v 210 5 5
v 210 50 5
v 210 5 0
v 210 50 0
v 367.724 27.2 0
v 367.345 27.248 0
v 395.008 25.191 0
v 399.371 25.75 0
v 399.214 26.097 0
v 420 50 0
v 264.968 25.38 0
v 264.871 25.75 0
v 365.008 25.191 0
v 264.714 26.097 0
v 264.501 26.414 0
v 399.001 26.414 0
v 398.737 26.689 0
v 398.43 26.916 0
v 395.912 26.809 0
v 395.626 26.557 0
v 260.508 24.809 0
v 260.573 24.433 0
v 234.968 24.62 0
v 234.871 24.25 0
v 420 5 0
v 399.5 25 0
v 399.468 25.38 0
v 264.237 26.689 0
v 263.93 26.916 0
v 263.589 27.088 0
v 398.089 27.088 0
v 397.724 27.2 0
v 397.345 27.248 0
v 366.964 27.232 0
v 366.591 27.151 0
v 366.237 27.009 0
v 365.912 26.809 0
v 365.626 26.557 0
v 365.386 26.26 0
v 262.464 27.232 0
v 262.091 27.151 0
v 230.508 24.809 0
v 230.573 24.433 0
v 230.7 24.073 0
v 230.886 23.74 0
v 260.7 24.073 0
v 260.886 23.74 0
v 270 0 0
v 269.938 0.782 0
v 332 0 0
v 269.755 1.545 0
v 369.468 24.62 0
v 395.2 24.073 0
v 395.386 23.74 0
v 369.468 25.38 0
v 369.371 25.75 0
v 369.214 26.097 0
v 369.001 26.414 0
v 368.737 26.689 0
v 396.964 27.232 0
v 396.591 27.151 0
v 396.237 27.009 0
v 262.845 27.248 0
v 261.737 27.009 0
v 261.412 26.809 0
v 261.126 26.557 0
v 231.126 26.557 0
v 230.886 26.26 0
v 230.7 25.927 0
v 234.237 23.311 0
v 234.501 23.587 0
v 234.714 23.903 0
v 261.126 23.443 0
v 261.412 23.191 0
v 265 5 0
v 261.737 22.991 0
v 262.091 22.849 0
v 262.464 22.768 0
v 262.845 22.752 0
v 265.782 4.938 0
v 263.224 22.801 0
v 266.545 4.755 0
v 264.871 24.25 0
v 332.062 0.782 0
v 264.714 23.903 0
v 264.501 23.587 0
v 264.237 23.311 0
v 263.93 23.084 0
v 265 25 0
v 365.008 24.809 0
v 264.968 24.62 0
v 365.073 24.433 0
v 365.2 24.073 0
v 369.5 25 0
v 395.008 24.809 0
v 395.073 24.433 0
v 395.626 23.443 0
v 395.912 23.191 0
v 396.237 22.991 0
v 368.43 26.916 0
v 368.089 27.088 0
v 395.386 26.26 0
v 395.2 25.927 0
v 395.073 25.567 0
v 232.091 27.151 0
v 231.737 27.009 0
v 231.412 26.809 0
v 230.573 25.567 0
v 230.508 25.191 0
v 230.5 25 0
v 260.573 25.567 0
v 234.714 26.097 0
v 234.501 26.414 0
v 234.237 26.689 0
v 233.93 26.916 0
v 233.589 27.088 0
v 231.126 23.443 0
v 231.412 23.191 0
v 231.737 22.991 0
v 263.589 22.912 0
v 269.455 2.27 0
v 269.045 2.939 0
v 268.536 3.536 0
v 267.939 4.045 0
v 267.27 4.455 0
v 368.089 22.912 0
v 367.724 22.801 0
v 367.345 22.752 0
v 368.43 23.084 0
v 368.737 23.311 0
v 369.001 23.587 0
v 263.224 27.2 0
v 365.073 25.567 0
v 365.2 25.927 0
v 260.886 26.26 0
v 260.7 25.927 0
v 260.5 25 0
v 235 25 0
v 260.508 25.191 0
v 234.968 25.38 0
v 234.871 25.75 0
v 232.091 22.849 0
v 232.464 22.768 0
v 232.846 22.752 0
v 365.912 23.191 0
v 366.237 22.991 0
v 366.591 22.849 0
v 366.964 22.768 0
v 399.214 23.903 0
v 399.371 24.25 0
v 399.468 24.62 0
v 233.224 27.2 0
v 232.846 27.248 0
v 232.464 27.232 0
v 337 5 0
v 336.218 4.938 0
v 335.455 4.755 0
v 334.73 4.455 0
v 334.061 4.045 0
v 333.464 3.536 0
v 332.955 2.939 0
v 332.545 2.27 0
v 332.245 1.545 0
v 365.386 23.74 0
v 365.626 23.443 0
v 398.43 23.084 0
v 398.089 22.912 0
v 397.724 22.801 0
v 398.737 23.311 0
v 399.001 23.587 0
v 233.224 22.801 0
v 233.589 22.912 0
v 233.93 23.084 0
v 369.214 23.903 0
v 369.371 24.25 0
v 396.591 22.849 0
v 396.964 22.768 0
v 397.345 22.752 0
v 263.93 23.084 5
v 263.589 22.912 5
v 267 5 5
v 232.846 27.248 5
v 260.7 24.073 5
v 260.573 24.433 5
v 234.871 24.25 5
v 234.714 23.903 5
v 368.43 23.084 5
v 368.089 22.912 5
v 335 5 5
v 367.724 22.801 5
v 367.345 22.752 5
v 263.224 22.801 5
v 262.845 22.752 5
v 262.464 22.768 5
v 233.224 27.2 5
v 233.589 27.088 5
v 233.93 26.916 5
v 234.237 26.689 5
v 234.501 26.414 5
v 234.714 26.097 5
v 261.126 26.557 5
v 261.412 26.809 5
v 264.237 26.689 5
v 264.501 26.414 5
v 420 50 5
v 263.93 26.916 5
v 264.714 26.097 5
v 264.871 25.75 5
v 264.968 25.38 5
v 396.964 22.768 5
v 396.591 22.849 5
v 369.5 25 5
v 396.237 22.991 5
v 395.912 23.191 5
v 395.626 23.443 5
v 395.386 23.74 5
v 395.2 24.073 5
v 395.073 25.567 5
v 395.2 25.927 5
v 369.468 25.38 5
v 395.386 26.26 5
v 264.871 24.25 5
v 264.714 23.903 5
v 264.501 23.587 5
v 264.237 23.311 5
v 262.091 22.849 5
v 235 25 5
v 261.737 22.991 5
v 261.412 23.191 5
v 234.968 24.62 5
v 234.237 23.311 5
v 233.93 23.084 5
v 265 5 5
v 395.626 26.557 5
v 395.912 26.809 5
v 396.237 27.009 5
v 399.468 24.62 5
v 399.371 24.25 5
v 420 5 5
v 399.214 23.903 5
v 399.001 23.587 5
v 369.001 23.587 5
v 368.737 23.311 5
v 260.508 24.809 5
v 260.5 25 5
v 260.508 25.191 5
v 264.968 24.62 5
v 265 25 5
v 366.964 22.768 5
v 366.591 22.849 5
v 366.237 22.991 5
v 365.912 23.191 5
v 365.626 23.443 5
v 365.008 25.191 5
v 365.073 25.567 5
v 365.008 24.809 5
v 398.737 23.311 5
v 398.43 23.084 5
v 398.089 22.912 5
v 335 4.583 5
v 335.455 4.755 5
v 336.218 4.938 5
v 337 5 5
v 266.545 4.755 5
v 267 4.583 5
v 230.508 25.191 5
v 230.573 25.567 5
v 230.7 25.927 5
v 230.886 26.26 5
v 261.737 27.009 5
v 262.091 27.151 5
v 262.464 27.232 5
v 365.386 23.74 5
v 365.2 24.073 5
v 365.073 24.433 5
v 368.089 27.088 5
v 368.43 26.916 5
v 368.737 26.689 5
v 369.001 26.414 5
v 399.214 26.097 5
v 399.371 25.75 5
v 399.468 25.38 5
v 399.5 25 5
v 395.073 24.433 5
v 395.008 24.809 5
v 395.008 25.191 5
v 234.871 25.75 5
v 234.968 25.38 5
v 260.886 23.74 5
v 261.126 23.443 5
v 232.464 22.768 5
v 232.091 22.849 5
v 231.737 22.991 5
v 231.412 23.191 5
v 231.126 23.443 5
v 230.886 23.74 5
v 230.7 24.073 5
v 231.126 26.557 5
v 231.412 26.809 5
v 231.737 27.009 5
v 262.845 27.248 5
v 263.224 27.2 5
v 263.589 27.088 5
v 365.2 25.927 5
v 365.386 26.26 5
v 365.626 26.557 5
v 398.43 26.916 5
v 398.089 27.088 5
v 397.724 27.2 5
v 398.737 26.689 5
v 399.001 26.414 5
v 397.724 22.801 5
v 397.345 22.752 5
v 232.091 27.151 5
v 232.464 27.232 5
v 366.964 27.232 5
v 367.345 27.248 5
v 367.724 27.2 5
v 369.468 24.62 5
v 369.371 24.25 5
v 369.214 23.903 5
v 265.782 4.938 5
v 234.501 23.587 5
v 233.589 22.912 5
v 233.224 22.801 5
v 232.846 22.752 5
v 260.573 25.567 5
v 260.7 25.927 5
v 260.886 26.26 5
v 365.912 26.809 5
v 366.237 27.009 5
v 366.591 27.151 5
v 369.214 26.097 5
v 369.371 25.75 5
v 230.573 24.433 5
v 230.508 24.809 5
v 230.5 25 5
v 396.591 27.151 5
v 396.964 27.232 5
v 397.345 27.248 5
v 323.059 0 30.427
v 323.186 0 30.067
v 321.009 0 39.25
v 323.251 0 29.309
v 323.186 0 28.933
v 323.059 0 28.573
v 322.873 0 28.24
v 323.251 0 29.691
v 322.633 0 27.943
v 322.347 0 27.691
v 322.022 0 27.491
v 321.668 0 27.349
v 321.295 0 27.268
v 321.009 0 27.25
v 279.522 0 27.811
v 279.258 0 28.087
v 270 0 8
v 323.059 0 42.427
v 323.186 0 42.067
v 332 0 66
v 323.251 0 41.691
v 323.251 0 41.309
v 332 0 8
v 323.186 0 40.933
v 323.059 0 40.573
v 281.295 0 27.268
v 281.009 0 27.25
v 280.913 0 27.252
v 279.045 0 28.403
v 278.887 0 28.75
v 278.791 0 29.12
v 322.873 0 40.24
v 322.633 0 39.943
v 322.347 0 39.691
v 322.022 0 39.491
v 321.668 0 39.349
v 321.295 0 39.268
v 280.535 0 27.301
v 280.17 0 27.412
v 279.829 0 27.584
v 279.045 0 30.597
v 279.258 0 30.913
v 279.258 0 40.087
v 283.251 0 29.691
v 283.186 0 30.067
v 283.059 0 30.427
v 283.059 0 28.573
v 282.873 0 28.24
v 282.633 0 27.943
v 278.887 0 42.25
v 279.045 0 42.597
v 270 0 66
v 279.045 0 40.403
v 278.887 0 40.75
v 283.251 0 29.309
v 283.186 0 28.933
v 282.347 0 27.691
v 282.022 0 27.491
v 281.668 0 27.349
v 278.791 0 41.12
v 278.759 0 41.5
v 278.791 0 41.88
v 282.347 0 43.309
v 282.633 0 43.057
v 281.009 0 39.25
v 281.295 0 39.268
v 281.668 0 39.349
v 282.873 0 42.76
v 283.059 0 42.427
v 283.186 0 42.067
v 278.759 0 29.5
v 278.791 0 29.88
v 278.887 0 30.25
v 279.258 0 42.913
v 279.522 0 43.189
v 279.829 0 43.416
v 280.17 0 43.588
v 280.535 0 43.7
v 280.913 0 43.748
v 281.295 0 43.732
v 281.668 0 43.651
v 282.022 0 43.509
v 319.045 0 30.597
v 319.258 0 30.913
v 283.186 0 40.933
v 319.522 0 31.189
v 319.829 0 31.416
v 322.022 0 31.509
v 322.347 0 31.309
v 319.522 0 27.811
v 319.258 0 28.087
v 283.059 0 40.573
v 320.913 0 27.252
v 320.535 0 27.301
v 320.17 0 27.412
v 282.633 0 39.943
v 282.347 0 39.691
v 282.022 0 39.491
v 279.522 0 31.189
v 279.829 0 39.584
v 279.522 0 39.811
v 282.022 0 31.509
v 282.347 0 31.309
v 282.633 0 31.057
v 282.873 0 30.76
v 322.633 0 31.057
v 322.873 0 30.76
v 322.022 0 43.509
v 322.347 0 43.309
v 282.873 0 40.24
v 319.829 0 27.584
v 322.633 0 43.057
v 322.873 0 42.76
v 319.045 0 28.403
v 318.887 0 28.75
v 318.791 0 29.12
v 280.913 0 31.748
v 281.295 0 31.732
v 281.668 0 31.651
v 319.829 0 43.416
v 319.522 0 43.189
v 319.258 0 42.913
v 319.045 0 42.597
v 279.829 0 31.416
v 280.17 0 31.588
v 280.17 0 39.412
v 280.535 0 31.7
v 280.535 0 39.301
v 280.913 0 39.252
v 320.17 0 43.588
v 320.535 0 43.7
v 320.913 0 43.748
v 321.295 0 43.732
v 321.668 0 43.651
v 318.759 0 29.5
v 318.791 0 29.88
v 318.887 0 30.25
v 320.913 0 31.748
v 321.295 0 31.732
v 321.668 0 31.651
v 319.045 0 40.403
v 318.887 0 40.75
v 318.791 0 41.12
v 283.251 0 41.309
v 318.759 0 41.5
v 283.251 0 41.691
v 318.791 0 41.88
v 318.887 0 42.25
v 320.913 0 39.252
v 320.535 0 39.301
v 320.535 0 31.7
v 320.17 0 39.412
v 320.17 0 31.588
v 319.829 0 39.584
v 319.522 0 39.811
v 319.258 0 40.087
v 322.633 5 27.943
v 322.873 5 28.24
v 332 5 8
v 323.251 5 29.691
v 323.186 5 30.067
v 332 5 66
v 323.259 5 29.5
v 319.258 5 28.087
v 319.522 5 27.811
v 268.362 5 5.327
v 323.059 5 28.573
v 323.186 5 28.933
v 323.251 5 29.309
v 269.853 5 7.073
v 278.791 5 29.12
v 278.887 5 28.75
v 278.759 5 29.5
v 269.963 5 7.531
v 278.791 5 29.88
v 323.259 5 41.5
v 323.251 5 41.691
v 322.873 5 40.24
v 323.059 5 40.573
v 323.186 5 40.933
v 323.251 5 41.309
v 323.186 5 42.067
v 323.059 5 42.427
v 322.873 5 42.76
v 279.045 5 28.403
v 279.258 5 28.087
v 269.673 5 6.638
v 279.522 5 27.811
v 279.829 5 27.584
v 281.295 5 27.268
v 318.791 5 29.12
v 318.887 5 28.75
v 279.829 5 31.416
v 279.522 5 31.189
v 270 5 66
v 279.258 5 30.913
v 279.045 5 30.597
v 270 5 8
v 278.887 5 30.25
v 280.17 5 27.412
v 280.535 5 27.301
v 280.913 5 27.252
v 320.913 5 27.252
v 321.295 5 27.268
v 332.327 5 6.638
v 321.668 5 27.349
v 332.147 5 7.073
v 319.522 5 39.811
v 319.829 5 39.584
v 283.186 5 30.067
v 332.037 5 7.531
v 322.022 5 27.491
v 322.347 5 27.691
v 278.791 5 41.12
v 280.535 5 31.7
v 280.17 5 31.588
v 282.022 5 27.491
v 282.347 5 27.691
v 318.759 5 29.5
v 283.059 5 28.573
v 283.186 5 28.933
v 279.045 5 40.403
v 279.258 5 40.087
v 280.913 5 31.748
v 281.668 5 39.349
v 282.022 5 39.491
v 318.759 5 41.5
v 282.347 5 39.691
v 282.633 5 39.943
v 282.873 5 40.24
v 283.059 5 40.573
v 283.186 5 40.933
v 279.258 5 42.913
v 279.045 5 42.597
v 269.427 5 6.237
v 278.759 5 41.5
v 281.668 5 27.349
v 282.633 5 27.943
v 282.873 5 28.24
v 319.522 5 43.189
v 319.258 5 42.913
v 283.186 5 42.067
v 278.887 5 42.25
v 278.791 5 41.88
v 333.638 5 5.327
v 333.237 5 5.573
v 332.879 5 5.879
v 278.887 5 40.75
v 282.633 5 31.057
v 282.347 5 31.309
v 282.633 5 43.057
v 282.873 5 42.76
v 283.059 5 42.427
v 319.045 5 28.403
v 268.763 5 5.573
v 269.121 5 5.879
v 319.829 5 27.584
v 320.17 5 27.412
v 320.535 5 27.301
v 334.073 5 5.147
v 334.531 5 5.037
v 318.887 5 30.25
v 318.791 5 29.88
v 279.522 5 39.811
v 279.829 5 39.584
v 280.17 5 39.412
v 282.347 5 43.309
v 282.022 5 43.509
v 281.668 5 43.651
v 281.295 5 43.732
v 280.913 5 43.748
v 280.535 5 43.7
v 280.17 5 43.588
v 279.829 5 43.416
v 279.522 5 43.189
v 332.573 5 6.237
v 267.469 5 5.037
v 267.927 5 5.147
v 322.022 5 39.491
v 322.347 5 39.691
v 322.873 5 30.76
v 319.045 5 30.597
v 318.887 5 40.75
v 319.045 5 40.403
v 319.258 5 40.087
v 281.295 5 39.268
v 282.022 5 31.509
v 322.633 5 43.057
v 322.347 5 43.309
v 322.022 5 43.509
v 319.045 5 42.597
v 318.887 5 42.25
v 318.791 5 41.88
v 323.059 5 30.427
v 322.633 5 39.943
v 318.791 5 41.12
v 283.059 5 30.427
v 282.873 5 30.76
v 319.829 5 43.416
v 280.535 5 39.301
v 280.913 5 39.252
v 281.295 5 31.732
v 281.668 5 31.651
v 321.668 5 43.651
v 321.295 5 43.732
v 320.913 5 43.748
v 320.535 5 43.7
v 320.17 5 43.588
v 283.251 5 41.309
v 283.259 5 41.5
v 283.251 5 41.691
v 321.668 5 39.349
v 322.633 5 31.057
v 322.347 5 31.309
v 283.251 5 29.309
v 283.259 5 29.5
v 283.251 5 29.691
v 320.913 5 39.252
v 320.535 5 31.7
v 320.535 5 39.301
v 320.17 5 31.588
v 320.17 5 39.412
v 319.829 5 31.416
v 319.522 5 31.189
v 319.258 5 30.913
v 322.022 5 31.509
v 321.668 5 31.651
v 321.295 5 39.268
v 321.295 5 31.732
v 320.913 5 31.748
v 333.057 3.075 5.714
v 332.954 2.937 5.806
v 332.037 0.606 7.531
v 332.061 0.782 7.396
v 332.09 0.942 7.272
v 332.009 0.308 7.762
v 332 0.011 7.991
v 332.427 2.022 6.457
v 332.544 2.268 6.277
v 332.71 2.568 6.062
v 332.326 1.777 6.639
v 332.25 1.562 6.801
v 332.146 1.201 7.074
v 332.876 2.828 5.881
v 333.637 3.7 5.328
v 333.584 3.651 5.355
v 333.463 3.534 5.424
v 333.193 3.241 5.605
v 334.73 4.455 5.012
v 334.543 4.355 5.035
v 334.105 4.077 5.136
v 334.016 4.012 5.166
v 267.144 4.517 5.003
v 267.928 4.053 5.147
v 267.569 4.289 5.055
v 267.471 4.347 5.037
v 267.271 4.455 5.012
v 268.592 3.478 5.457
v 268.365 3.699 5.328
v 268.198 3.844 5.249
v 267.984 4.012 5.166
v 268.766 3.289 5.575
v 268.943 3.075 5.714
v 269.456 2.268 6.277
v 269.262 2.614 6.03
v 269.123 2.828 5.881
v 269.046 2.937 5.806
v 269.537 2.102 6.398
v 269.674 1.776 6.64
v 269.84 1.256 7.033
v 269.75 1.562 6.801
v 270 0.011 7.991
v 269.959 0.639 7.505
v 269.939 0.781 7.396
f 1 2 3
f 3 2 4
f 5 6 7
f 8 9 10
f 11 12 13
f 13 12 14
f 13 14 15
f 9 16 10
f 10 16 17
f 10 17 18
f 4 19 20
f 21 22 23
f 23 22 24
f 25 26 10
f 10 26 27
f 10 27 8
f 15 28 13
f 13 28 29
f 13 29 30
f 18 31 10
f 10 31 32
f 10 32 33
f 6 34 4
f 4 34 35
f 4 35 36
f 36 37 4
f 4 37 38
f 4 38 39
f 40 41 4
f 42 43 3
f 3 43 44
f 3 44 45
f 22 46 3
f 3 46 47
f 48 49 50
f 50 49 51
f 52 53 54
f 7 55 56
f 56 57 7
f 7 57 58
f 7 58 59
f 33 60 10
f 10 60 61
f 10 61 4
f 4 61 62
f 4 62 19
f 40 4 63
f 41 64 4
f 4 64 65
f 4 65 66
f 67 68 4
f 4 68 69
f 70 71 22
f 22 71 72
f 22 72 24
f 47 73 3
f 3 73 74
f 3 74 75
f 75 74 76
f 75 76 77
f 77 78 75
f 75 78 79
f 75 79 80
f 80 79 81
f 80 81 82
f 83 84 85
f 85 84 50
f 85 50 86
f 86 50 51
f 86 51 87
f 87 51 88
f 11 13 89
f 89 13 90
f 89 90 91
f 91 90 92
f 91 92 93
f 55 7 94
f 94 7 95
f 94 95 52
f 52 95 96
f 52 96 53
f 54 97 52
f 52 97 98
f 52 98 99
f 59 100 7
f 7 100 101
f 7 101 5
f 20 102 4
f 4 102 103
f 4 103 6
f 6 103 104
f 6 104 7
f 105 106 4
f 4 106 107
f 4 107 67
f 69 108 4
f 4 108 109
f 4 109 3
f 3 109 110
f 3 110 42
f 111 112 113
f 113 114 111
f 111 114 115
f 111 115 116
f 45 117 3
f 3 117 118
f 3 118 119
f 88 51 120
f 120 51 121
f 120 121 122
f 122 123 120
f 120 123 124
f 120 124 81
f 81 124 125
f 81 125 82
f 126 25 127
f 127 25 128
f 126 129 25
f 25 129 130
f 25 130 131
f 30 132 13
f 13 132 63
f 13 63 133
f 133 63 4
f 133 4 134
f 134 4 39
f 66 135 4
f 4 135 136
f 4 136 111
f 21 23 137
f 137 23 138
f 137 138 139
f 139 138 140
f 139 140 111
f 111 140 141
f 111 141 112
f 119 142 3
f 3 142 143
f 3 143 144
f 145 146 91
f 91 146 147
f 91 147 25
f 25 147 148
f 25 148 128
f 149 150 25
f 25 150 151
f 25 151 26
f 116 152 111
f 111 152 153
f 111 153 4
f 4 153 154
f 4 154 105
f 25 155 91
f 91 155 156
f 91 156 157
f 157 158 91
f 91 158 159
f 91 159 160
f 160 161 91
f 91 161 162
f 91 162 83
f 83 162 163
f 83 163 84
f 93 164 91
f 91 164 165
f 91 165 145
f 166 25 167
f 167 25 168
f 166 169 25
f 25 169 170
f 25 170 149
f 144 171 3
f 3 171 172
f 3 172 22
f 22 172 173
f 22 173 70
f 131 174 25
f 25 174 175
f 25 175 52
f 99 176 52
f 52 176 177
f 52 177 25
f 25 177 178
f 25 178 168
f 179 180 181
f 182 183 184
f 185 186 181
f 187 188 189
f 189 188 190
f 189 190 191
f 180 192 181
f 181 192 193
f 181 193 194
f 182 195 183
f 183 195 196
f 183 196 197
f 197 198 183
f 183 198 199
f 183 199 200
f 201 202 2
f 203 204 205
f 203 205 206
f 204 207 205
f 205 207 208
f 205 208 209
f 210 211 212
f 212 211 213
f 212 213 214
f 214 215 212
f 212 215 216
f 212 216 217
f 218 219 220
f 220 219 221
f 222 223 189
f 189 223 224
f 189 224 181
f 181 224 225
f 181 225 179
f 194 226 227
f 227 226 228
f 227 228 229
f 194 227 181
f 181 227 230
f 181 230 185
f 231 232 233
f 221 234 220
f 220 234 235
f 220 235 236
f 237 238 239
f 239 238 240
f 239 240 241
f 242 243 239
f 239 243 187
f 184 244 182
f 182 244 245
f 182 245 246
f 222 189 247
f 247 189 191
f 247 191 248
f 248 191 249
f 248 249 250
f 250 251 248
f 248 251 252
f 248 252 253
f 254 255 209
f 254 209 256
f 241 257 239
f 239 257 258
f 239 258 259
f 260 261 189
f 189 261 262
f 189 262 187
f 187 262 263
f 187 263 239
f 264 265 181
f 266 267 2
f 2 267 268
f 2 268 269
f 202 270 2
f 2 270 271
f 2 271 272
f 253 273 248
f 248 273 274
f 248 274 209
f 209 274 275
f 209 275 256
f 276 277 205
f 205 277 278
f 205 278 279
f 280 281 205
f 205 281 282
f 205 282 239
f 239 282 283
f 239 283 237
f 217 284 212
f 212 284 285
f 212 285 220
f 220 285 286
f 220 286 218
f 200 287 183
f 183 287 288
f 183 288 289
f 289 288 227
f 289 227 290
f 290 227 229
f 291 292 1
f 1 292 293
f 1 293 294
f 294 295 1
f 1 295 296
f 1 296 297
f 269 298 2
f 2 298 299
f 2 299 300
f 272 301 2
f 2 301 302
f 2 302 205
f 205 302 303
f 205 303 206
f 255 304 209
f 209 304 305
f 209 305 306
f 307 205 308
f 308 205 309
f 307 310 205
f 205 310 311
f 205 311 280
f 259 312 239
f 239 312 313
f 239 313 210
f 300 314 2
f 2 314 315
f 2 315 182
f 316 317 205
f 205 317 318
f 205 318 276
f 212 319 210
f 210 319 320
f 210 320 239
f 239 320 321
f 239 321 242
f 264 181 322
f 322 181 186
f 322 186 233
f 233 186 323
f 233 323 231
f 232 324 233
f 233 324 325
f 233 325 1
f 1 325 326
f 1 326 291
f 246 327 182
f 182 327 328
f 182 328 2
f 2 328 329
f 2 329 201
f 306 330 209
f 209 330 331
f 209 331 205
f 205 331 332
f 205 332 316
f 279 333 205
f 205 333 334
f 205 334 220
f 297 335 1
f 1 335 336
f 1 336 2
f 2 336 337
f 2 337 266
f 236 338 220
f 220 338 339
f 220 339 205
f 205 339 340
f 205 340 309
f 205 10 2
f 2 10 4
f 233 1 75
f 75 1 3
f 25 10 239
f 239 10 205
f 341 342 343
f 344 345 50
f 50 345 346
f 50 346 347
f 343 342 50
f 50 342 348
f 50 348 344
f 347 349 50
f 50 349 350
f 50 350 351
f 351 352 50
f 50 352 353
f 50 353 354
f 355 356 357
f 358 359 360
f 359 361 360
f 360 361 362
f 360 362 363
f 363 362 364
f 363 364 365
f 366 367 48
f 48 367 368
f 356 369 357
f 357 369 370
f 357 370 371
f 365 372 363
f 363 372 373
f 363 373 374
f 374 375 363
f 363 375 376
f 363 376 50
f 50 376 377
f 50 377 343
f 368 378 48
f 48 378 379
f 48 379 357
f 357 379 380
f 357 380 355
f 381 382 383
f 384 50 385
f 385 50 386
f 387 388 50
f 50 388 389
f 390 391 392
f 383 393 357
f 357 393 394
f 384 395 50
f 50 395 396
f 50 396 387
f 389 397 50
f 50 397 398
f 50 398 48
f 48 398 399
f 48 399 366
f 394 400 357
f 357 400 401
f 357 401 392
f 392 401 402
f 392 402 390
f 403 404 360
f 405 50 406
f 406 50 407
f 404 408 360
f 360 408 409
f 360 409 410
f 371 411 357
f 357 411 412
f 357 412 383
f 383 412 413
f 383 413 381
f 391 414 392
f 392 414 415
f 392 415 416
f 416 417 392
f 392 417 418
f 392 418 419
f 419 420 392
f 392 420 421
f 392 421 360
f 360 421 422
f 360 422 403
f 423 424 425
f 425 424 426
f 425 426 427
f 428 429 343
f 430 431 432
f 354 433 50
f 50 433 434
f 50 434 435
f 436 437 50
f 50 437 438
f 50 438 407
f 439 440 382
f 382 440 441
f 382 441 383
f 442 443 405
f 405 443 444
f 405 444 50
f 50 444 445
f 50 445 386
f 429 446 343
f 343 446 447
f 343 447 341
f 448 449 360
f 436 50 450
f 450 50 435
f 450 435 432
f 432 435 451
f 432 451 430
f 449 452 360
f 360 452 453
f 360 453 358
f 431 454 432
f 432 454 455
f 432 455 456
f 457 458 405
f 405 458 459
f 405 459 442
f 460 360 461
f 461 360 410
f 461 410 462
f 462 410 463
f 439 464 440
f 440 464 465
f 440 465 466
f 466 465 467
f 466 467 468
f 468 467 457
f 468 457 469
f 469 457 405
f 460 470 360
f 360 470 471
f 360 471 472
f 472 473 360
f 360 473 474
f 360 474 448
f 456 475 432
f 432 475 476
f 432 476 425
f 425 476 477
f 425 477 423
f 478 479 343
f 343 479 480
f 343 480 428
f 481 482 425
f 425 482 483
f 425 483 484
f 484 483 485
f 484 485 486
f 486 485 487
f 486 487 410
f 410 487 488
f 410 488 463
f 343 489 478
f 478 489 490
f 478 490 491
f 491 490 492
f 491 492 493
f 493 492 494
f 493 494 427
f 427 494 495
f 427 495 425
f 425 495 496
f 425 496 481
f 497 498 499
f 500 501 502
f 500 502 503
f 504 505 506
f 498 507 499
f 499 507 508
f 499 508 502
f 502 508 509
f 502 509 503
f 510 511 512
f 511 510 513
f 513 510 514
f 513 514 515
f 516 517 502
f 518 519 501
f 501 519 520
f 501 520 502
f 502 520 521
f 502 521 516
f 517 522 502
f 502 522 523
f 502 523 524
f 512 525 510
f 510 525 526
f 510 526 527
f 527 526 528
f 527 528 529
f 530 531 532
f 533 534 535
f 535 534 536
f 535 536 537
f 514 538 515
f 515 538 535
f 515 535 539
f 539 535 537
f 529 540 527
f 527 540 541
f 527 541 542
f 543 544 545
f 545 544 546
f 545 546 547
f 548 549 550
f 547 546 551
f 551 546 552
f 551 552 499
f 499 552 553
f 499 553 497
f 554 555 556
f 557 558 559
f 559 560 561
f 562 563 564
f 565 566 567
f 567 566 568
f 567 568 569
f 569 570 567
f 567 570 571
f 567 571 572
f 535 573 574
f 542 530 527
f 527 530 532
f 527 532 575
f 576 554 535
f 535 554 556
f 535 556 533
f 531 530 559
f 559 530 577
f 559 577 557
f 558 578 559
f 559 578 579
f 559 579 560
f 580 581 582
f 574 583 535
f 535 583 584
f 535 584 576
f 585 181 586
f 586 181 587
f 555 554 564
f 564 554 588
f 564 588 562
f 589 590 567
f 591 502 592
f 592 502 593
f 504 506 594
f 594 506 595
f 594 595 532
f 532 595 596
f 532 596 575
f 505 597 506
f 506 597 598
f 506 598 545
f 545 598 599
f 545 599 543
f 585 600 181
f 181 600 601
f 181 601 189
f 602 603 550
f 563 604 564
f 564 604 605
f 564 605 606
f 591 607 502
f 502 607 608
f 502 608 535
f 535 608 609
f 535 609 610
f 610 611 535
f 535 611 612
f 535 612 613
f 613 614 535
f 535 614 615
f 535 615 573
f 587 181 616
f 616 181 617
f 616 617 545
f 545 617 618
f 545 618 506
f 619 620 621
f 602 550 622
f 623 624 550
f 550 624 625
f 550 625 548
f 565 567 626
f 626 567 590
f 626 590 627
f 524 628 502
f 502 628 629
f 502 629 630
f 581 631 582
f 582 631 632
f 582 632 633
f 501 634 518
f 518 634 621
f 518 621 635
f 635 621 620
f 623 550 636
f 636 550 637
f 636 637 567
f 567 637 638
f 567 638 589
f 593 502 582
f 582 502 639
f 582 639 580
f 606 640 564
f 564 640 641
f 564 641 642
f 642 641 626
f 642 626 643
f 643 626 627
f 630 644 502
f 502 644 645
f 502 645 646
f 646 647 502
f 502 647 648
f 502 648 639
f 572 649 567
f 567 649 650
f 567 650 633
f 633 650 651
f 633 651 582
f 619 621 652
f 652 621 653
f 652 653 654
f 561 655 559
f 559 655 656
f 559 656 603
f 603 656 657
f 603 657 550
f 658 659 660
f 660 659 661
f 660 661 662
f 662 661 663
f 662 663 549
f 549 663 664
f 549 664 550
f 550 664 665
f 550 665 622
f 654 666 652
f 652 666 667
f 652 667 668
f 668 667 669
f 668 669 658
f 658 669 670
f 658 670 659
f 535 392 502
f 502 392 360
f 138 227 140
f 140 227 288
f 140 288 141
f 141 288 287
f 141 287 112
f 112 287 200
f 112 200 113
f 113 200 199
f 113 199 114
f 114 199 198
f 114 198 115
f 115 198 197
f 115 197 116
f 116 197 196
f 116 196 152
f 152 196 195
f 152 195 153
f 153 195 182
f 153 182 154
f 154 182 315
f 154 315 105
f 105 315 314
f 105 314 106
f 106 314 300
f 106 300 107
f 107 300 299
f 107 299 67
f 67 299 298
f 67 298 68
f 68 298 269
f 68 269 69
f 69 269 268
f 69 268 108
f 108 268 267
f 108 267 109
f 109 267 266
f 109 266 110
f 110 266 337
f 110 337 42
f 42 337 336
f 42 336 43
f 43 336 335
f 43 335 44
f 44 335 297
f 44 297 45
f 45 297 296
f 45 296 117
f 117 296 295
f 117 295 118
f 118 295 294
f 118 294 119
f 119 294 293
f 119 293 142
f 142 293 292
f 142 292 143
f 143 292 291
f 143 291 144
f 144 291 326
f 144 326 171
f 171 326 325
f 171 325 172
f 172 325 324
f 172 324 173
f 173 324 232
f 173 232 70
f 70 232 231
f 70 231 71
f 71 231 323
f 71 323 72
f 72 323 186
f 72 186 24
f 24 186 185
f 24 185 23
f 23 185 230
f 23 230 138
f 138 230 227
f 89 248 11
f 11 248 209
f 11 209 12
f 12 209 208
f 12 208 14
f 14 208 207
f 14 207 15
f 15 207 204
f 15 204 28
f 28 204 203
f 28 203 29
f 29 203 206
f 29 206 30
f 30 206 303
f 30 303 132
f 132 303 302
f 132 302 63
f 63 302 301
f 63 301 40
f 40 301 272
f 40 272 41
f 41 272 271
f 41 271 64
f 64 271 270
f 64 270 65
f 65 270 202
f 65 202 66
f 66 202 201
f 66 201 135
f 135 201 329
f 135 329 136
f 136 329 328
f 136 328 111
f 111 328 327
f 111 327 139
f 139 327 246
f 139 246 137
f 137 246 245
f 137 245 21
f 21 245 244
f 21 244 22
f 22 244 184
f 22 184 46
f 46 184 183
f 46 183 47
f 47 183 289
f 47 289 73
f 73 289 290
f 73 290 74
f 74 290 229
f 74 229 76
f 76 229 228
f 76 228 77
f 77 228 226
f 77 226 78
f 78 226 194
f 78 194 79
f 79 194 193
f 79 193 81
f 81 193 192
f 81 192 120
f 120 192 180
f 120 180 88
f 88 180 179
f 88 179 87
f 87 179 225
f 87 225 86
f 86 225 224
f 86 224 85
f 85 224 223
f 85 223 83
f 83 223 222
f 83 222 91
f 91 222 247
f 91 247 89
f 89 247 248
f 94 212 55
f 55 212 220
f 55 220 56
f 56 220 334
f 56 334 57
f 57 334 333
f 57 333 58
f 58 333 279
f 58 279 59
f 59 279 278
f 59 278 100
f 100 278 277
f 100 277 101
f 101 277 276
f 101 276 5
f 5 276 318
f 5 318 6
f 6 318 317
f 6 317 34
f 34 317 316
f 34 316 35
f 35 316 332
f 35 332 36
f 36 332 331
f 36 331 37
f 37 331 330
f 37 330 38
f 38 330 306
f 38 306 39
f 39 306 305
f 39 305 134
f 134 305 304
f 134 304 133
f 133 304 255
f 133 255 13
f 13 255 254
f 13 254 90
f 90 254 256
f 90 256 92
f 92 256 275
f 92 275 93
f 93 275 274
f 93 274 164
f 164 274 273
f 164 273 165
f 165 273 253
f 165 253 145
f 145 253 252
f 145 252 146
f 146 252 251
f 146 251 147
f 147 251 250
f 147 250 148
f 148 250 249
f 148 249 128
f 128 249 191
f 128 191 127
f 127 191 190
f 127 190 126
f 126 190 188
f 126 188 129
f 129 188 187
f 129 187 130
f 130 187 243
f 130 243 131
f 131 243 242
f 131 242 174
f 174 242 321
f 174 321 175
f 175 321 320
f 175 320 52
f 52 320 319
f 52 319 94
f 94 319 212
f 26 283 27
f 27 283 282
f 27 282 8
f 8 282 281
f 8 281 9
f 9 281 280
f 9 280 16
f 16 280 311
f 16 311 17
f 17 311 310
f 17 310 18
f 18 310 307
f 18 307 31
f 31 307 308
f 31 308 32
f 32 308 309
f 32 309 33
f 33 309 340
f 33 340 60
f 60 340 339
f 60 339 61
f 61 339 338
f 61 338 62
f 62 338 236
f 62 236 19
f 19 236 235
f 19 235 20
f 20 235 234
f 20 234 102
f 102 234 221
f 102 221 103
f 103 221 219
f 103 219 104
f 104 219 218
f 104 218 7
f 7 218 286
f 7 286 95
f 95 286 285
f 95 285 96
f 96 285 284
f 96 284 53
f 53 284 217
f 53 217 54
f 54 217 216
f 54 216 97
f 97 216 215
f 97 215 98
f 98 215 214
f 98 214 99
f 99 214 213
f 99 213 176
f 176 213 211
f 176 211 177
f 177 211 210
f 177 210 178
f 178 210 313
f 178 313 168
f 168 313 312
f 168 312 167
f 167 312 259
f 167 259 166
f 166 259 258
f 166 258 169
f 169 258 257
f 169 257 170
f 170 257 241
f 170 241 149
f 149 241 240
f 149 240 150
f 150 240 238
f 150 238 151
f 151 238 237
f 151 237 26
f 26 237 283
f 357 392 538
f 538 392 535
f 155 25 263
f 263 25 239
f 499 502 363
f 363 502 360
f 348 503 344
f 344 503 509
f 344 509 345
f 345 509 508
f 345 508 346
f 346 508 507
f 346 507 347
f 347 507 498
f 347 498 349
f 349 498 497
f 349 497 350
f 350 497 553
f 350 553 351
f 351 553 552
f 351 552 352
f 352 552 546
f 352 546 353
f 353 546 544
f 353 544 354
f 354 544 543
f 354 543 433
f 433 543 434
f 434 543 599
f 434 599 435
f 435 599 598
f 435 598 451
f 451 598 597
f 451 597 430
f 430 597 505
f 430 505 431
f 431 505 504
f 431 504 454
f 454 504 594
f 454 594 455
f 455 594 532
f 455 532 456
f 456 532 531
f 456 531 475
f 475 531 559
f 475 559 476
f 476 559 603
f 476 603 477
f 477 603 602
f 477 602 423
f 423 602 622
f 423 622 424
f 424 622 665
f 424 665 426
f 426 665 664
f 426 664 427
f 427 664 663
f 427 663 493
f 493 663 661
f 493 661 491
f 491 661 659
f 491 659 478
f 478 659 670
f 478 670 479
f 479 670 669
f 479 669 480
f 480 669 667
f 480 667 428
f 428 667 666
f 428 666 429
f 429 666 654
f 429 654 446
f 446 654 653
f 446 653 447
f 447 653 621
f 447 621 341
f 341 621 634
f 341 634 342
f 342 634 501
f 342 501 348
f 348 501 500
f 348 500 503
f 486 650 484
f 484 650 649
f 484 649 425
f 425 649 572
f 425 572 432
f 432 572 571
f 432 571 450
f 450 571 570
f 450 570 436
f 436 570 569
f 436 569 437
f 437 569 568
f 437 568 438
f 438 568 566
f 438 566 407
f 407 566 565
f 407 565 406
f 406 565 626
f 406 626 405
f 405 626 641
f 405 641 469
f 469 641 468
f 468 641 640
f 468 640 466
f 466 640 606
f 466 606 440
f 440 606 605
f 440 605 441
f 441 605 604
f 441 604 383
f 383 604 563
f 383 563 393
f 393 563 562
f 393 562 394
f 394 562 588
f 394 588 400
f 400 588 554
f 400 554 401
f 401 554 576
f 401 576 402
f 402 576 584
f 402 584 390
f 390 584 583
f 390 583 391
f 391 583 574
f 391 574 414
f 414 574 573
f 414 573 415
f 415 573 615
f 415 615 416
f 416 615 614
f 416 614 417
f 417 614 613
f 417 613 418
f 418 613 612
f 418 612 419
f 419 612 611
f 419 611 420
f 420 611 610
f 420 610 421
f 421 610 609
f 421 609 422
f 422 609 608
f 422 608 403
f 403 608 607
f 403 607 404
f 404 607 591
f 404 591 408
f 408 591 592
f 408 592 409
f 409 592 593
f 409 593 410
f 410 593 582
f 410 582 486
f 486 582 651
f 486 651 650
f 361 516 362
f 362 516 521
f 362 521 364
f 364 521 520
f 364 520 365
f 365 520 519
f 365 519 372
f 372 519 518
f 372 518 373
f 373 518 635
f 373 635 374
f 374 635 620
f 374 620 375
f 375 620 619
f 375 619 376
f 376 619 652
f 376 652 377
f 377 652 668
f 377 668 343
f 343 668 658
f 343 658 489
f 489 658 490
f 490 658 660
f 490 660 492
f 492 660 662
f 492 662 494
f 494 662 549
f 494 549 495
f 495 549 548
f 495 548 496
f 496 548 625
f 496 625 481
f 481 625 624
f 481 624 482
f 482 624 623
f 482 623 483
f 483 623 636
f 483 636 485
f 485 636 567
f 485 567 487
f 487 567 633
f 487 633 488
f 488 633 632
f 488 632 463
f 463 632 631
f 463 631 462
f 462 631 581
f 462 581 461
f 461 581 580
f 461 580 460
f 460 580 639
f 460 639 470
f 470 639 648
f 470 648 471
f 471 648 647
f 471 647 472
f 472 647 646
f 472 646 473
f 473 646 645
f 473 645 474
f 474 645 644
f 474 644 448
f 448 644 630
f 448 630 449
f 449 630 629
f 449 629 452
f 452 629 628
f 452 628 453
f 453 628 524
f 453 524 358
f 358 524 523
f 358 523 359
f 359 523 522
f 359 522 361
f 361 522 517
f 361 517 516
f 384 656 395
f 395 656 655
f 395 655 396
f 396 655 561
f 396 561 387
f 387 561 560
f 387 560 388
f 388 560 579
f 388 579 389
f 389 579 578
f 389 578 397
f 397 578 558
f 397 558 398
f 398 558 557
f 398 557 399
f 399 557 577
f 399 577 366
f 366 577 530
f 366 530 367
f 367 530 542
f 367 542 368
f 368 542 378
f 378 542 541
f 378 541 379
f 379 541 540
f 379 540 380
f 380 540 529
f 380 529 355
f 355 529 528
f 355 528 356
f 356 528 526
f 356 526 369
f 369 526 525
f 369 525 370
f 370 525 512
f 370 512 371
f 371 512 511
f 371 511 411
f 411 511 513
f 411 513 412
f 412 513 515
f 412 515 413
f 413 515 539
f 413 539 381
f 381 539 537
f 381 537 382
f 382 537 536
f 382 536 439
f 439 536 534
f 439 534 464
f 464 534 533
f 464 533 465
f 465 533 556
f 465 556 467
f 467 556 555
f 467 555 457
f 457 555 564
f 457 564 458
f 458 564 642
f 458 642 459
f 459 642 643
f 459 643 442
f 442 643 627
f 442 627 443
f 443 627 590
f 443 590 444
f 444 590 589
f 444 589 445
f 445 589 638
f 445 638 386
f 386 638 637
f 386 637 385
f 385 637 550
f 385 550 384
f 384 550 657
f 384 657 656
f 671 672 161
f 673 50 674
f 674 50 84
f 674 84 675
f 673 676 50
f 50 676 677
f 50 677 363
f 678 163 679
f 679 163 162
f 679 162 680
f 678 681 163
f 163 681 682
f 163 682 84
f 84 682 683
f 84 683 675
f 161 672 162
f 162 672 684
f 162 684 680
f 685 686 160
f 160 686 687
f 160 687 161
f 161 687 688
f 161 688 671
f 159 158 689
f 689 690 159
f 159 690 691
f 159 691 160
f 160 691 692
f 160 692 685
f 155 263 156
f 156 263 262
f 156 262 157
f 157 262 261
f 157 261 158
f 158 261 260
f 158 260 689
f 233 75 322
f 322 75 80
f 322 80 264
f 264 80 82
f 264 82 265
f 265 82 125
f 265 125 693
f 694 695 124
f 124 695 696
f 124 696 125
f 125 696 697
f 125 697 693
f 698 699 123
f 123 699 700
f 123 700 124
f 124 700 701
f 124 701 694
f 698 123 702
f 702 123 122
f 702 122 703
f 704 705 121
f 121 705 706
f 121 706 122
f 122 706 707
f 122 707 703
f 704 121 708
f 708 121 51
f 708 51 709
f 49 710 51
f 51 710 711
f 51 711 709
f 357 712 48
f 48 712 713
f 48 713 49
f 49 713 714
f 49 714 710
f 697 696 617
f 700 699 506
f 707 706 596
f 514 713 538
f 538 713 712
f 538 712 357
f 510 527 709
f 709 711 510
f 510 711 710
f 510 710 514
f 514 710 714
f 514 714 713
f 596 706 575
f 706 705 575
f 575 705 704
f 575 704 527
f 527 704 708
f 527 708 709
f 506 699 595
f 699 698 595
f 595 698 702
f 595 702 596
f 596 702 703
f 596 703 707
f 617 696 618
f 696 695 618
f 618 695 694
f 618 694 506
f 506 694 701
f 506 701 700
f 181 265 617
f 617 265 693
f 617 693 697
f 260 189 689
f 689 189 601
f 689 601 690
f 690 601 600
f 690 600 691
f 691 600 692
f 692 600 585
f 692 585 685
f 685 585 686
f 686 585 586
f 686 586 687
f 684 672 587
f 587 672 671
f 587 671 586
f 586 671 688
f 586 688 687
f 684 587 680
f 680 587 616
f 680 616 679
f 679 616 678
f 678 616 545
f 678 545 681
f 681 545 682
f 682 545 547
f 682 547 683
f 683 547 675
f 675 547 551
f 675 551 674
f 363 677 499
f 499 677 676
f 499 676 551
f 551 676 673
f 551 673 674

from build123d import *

# Parameters (mm, degrees)
SKETCH_1_W                     = 210
SKETCH_1_H                     = 50
EXTRUDE_1_DEPTH                = 5
SKETCH_3_R                     = 2.25
CUT_EXTRUDE_1_DEPTH            = 5
SKETCH_4_W                     = 210
SKETCH_4_H                     = 5
EXTRUDE_2_DEPTH                = 61
CUT_EXTRUDE_2_REACH            = 227.734
SKETCH_6_W                     = 60
SKETCH_6_H                     = 5
FILLET_1_R                     = 10
CUT_EXTRUDE_3_REACH            = 227.734
SKETCH_7_W                     = 88
SKETCH_7_H                     = 5
FILLET_2_R                     = 10
FILLET_6_R                     = 3
SKETCH_11_R                    = 2.25
CUT_EXTRUDE_4_DEPTH            = 225.67977212
SPLIT_BODIES_2_SURFACE_1_BACK  = 429.084
SPLIT_BODIES_2_SURFACE_1_DEPTH = 858.168
FILLET_8_R                     = 5
FILLET_9_R                     = 3


# Some blends are built 0.0001 mm under size
with BuildPart() as part:
    # 草图1 → 凸台-拉伸1 (new body)
    with BuildSketch(Plane.XY):
        with Locations((105, 25)):
            Rectangle(SKETCH_1_W, SKETCH_1_H)
    extrude_1 = extrude(amount=EXTRUDE_1_DEPTH)

    # 草图3 → 切除-拉伸1 (cut)
    with BuildSketch(Plane.XY.offset(5)):
        with Locations((157.25, 25)):
            Circle(SKETCH_3_R)
        with Locations((187.25, 25)):
            Circle(SKETCH_3_R)
        with Locations(Location((22.75, 25, 0), (0, 0, 180))):
            Circle(SKETCH_3_R)
        with Locations(Location((52.75, 25, 0), (0, 0, 180))):
            Circle(SKETCH_3_R)
    cut_extrude_1 = extrude(amount=-CUT_EXTRUDE_1_DEPTH, mode=Mode.SUBTRACT)

    # 草图4 → 凸台-拉伸2 (add)
    with BuildSketch(Plane.XY.offset(5)):
        with Locations((105, 2.5)):
            Rectangle(SKETCH_4_W, SKETCH_4_H)
    extrude_2 = extrude(amount=EXTRUDE_2_DEPTH)

    # 草图6 → 切除-拉伸2 (cut, up to next)
    with BuildSketch(Plane.XY.offset(66), mode=Mode.PRIVATE) as cut_extrude_2_sk1:
        with Locations((180, 2.5)):
            Rectangle(SKETCH_6_W, SKETCH_6_H)
    cut_extrude_2_tool1 = extrude(cut_extrude_2_sk1.sketch, amount=-CUT_EXTRUDE_2_REACH, mode=Mode.PRIVATE) & part.part
    cut_extrude_2 = cut_extrude_2_tool1.solids().sort_by_distance((180, 2.5, 66))[0]
    add(cut_extrude_2, mode=Mode.SUBTRACT)

    # 圆角1
    # the kernel refuses this fillet: 10 mm, written as the material it adds along each edge
    with BuildSketch(Plane(origin=(150, 5, 0), x_dir=(0, -1, 0), z_dir=(0, 0, 1))) as fillet_1_piece_1:
        with BuildLine():
            CenterArc((10, 8.660254038), FILLET_1_R, 180, 60)
            Line((0, 8.660254038), (0, 0))
            Line((0, 0), (5, 0))
        make_face()
    extrude(amount=5)

    # 草图7 → 切除-拉伸3 (cut, up to next)
    with BuildSketch(Plane.XY.offset(66), mode=Mode.PRIVATE) as cut_extrude_3_sk1:
        with Locations((44, 2.5)):
            Rectangle(SKETCH_7_W, SKETCH_7_H)
    cut_extrude_3_tool1 = extrude(cut_extrude_3_sk1.sketch, amount=-CUT_EXTRUDE_3_REACH, mode=Mode.PRIVATE) & part.part
    cut_extrude_3 = cut_extrude_3_tool1.solids().sort_by_distance((44, 2.5, 66))[0]
    add(cut_extrude_3, mode=Mode.SUBTRACT)

    # 圆角2
    # the kernel refuses this fillet: 10 mm, written as the material it adds along each edge
    with BuildSketch(Plane(origin=(88, 5, 0), x_dir=(0, -1, 0), z_dir=(0, 0, 1))) as fillet_2_piece_1:
        with BuildLine():
            CenterArc((10, -8.660254038), FILLET_2_R, 120, 60)
            Line((0, -8.660254038), (0, 0))
            Line((0, 0), (5, 0))
        make_face()
    extrude(amount=5)

    # 圆角6
    # the kernel refuses this fillet: 3 mm, written as the material it adds along each edge
    with BuildSketch(Plane(origin=(150, 5, 5), x_dir=(1, 0, 0), z_dir=(0, -1, 0))) as fillet_6_piece_1_section:
        with BuildLine():
            CenterArc((FILLET_6_R, FILLET_6_R), FILLET_6_R, 180, 90)
            Line((0, FILLET_6_R), (0, 0))
            Line((0, 0), (FILLET_6_R, 0))
        make_face()
    fillet_6_piece_1 = extrude(amount=5, mode=Mode.PRIVATE)
    fillet_6_piece_1 = fillet_6_piece_1 - Plane(origin=(158.660254038, -5, 5.756133445), x_dir=(0, -1, 0), z_dir=(0, 0, -1)) * Cylinder(10, 22, mode=Mode.PRIVATE)
    add(fillet_6_piece_1)
    with BuildSketch(Plane(origin=(88, 5, 5), x_dir=(-1, 0, 0), z_dir=(0, -1, 0))) as fillet_6_piece_2_section:
        with BuildLine():
            CenterArc((FILLET_6_R, -FILLET_6_R), FILLET_6_R, 90, 90)
            Line((0, -FILLET_6_R), (0, 0))
            Line((0, 0), (FILLET_6_R, 0))
        make_face()
    fillet_6_piece_2 = extrude(amount=5, mode=Mode.PRIVATE)
    fillet_6_piece_2 = fillet_6_piece_2 - Plane(origin=(79.339745962, -5, 5.756136784), x_dir=(0, -1, 0), z_dir=(0, 0, -1)) * Cylinder(10, 22, mode=Mode.PRIVATE)
    add(fillet_6_piece_2)

    # 草图11 → 切除-拉伸4 (cut, through all)
    with BuildSketch(Plane(origin=(0, 5, 0), x_dir=(1, 0, 0), z_dir=(0, 1, 0))):
        with Locations(Location((98.991167509, -29.5, 0), (0, 0, 180))):
            Circle(SKETCH_11_R)
        with Locations(Location((138.991167509, -29.5, 0), (0, 0, 180))):
            Circle(SKETCH_11_R)
        with Locations(Location((98.991167509, -41.5, 0), (0, 0, 180))):
            Circle(SKETCH_11_R)
        with Locations(Location((138.991167509, -41.5, 0), (0, 0, 180))):
            Circle(SKETCH_11_R)
    cut_extrude_4 = extrude(amount=-CUT_EXTRUDE_4_DEPTH, mode=Mode.SUBTRACT)

    # 镜向16: 凸台-拉伸1, 切除-拉伸1, 凸台-拉伸2, 切除-拉伸2, 切除-拉伸3, 切除-拉伸4 across plane
    add(extrude_1.mirror(Plane(origin=(210, 0, 5), x_dir=(0, 0, 1), z_dir=(-1, 0, 0))))
    add(cut_extrude_1.mirror(Plane(origin=(210, 0, 5), x_dir=(0, 0, 1), z_dir=(-1, 0, 0))), mode=Mode.SUBTRACT)
    add(extrude_2.mirror(Plane(origin=(210, 0, 5), x_dir=(0, 0, 1), z_dir=(-1, 0, 0))))
    add(cut_extrude_2.mirror(Plane(origin=(210, 0, 5), x_dir=(0, 0, 1), z_dir=(-1, 0, 0))), mode=Mode.SUBTRACT)
    add(cut_extrude_3.mirror(Plane(origin=(210, 0, 5), x_dir=(0, 0, 1), z_dir=(-1, 0, 0))), mode=Mode.SUBTRACT)
    add(cut_extrude_4.mirror(Plane(origin=(210, 0, 5), x_dir=(0, 0, 1), z_dir=(-1, 0, 0))), mode=Mode.SUBTRACT)

    # Split Bodies 2: cut with a surface, the side it looks to stays
    # Split Bodies 2 surface: a surface, the sketch's curves swept straight by 858.168 mm
    with BuildLine(Plane.XY.offset(5).offset(-SPLIT_BODIES_2_SURFACE_1_BACK), mode=Mode.PRIVATE) as split_bodies_2_surface_1_path:
        Line((210, 50), (210, 0))
    split_bodies_2_surface_1 = Shell.extrude(split_bodies_2_surface_1_path.wire(), (0 * SPLIT_BODIES_2_SURFACE_1_DEPTH, 0 * SPLIT_BODIES_2_SURFACE_1_DEPTH, 1 * SPLIT_BODIES_2_SURFACE_1_DEPTH))
    split(bisect_by=split_bodies_2_surface_1, keep=Keep.TOP)

    # 圆角8
    fillet_8_edges = [part.edges().sort_by_distance(p)[0] for p in [
        (332, 5, 2.5),
        (270, 5, 2.5),
    ]]
    fillet(fillet_8_edges, radius=FILLET_8_R - 0.0001)  # a hair under: the kernel refuses the full size

    # 圆角9
    fillet_9_edges = [part.edges().sort_by_distance(p)[0] for p in [
        (332, 2.50005, 5),
        (270, 2.50005, 5),
    ]]
    fillet(fillet_9_edges, radius=FILLET_9_R)


solid = part.part
